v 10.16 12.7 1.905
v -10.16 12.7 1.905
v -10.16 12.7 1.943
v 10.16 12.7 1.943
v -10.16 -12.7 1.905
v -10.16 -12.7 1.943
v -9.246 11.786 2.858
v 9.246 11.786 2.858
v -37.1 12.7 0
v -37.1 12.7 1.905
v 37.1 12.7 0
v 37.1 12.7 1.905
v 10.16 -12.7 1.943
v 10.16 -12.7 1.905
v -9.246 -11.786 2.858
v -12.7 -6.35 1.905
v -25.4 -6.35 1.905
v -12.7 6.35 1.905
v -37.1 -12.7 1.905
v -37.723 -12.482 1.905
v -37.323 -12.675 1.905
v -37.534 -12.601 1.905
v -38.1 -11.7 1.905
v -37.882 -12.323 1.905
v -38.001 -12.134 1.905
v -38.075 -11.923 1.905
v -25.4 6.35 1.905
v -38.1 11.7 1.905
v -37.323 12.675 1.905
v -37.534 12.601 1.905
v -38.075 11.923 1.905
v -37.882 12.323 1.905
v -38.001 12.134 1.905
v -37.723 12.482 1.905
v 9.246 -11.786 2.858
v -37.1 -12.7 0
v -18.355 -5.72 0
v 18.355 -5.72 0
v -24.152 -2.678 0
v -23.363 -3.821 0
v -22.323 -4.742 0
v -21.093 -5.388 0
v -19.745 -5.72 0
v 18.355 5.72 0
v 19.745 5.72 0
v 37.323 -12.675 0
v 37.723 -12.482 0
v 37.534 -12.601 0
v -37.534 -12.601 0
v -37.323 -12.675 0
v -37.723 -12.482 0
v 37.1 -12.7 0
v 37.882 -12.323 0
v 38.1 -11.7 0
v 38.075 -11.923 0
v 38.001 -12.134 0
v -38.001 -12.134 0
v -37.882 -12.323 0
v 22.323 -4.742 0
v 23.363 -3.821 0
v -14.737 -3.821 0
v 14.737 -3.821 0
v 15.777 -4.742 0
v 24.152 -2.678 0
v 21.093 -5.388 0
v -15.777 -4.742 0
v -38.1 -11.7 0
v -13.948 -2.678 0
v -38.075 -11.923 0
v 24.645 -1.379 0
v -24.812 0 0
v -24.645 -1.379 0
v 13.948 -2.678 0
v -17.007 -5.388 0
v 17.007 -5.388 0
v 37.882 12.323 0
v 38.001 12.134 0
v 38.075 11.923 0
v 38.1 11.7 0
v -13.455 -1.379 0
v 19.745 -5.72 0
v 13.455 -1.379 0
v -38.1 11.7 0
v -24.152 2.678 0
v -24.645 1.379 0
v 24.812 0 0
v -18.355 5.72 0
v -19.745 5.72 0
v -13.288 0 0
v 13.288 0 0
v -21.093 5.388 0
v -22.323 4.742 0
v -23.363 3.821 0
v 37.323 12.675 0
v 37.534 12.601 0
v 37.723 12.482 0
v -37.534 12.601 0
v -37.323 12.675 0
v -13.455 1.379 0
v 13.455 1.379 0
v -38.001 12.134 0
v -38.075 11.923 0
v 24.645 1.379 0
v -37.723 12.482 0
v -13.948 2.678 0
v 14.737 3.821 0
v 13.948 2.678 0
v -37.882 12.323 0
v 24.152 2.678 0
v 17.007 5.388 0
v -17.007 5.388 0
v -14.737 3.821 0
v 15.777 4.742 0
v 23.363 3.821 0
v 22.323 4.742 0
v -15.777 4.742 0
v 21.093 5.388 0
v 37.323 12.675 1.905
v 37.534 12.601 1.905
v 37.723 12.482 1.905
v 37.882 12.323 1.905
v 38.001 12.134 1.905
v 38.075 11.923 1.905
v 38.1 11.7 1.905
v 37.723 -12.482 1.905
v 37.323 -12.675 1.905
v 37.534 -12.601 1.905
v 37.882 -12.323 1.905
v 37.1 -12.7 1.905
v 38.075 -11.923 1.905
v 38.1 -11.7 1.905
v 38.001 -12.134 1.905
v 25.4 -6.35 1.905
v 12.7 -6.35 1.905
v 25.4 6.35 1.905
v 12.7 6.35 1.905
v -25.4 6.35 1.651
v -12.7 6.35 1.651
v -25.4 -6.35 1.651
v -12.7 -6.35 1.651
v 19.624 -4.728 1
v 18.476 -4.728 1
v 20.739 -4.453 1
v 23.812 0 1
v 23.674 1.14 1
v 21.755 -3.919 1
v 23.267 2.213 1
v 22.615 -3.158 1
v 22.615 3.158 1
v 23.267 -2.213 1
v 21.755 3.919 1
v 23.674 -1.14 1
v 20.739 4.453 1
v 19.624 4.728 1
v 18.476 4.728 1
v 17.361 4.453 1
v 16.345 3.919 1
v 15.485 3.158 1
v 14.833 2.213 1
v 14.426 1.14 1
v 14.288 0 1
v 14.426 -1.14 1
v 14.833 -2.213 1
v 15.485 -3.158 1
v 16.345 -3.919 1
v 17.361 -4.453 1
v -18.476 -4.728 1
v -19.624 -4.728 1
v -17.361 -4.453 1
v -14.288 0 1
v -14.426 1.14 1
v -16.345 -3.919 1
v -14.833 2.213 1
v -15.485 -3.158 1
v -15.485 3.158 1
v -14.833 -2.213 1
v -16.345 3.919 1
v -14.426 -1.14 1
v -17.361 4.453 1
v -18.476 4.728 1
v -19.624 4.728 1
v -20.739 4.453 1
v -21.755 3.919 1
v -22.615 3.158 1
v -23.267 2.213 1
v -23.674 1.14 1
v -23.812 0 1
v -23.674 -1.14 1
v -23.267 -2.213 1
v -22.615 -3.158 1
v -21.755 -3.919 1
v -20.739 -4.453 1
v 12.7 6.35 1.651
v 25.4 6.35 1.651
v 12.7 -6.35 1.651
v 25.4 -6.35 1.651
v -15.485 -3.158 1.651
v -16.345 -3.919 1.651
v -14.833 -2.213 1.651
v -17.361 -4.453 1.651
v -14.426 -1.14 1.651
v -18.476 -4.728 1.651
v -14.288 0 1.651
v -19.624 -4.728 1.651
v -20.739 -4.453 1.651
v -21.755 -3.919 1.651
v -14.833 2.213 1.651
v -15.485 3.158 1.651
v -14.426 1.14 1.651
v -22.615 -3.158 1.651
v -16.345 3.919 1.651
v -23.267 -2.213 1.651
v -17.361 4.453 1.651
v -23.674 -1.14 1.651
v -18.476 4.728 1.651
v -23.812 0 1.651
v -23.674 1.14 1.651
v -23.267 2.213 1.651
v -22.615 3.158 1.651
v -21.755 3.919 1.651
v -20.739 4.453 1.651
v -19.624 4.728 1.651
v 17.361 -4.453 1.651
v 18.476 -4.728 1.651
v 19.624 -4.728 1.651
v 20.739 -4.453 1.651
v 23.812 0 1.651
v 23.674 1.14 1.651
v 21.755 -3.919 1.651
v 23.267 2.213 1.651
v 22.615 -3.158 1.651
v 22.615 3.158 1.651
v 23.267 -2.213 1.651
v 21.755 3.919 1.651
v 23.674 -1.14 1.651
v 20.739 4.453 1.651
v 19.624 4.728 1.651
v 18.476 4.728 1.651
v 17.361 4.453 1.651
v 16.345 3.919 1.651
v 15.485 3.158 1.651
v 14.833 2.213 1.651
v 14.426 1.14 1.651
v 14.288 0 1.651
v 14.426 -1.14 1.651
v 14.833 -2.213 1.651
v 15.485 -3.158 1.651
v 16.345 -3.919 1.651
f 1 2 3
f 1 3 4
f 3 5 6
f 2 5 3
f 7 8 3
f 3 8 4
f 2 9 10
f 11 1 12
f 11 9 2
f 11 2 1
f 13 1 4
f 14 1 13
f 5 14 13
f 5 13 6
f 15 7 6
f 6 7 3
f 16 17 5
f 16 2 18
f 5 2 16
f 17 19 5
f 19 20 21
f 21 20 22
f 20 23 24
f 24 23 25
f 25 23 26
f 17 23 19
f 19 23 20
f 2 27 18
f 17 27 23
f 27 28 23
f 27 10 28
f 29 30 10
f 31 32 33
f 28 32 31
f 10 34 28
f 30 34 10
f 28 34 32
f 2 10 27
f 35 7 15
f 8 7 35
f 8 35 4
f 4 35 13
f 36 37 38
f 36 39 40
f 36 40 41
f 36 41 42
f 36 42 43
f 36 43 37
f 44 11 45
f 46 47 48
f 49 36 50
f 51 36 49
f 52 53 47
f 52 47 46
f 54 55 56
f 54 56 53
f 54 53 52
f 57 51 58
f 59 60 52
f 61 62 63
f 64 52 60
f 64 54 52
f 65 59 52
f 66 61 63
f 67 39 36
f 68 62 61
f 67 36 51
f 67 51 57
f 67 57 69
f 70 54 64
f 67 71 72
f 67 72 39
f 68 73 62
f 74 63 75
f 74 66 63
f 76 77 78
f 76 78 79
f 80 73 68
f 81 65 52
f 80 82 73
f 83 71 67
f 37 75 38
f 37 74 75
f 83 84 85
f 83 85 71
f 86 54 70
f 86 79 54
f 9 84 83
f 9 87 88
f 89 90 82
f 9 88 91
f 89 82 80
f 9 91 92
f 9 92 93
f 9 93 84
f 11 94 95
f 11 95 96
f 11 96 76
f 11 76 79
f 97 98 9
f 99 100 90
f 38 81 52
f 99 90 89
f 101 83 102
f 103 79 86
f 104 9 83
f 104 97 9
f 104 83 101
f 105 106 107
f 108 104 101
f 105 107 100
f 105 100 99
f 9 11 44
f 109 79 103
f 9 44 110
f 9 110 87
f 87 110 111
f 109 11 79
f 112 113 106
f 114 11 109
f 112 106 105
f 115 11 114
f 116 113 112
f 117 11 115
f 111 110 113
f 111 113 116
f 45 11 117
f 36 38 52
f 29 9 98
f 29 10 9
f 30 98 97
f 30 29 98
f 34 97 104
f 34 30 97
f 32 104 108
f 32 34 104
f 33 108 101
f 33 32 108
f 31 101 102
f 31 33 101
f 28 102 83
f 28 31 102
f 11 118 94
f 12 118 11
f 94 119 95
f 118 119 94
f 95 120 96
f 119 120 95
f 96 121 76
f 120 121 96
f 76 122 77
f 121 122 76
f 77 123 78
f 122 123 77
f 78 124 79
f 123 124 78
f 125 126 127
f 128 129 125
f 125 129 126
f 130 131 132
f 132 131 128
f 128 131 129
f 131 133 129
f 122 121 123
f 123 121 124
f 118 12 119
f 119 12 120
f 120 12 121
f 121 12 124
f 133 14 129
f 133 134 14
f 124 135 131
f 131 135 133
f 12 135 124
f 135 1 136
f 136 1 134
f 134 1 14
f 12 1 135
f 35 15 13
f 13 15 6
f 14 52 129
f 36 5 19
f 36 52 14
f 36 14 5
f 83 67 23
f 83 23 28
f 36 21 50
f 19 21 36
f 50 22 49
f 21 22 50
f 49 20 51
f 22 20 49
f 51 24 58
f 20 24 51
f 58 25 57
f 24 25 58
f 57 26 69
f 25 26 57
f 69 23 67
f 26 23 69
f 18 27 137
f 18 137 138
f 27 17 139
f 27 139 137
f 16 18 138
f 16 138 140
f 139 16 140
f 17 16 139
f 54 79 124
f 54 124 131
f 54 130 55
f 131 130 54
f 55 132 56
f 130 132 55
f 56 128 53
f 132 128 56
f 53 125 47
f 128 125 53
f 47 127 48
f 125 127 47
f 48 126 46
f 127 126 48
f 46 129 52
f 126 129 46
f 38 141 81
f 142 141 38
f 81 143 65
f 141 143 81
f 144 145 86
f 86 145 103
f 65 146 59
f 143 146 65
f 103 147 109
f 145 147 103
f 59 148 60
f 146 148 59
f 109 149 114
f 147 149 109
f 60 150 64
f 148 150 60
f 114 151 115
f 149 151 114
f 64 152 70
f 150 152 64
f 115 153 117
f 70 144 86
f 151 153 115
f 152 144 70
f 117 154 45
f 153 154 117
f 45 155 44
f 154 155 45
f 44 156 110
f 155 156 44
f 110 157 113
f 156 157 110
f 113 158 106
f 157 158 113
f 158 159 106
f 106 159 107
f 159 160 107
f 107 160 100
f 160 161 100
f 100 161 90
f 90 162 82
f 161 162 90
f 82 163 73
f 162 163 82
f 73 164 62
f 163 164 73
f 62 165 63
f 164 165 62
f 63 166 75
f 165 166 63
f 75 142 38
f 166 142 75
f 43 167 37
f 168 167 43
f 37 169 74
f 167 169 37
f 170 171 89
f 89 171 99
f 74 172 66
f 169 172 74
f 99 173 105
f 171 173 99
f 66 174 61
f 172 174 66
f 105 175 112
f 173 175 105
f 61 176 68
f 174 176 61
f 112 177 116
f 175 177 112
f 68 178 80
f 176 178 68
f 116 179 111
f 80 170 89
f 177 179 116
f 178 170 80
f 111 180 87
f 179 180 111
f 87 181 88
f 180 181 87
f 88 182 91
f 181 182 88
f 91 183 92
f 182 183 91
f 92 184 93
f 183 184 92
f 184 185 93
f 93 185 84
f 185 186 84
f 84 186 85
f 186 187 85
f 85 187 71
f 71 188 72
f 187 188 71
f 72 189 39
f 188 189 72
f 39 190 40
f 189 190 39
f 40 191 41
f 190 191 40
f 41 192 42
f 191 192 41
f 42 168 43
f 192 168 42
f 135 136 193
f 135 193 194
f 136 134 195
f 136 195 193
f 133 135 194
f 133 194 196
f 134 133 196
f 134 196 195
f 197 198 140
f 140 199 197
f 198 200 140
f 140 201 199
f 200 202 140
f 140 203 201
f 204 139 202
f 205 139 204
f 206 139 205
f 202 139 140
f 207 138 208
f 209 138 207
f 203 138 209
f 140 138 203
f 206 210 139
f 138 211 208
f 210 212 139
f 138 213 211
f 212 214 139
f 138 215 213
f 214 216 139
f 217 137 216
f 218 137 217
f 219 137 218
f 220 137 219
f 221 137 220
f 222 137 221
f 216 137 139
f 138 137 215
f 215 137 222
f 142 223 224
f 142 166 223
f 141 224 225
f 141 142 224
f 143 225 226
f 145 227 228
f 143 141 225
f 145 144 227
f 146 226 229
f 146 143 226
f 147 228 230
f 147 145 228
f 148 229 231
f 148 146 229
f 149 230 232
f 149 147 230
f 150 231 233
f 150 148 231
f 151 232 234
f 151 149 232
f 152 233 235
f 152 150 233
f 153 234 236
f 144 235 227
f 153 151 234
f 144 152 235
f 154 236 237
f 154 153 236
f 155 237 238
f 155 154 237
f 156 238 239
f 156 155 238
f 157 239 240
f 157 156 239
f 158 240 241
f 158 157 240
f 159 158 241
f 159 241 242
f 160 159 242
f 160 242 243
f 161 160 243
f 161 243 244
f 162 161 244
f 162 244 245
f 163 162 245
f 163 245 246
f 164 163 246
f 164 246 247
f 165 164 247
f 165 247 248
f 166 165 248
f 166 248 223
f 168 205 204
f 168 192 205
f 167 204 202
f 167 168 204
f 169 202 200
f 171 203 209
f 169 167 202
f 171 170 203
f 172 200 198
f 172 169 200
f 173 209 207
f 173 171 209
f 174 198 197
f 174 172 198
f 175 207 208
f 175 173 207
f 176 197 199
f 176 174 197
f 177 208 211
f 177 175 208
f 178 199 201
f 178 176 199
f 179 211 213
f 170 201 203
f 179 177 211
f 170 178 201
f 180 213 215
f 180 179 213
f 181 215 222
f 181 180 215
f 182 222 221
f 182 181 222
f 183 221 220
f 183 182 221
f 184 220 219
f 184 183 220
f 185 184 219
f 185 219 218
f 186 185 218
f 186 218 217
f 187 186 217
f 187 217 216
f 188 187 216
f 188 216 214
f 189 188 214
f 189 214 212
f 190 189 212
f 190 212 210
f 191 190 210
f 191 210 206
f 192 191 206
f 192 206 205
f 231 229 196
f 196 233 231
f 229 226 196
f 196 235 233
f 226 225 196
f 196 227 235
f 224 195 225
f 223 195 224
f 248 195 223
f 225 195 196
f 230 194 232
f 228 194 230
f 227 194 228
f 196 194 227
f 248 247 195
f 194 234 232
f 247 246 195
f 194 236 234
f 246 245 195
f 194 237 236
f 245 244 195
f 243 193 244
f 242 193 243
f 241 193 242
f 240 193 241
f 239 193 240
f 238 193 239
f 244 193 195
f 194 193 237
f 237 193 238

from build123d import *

# Parameters (mm, degrees)
SKETCH_W        = 76.2
SKETCH_H        = 25.4
SKETCH_R        = 4.7625
PAD_DEPTH       = 1.905
SKETCH001_W     = 12.7
SKETCH001_H     = 12.7
POCKET_DEPTH    = 0.254
CHAMFER_SIZE    = 1
FILLET_R        = 1
SKETCH002_W     = 20.32
SKETCH002_H     = 25.4
PAD001_DEPTH    = 0.9525
CHAMFER001_SIZE = 0.9144


with BuildPart() as part:
    # Sketch → Pad (new body)
    with BuildSketch(Plane.XY):
        Rectangle(SKETCH_W, SKETCH_H)
        with Locations((-19.05, 0)):
            Circle(SKETCH_R, mode=Mode.SUBTRACT)
        with Locations((19.05, 0)):
            Circle(SKETCH_R, mode=Mode.SUBTRACT)
    extrude(amount=PAD_DEPTH)

    # Sketch001 → Pocket (cut)
    with BuildSketch(Plane.XY.offset(1.905)):
        with Locations((-19.05, 0)):
            Rectangle(SKETCH001_W, SKETCH001_H)
        with Locations((19.05, 0)):
            Rectangle(SKETCH001_W, SKETCH001_H)
    extrude(amount=-POCKET_DEPTH, mode=Mode.SUBTRACT)

    # Chamfer
    chamfer_edges = [part.edges().sort_by_distance(p)[0] for p in [
        (14.2875, 0, 0),
        (-23.8125, 0, 0),
    ]]
    chamfer(chamfer_edges, length=CHAMFER_SIZE)

    # Fillet
    fillet_edges = [part.edges().sort_by_distance(p)[0] for p in [
        (38.1, 12.7, 0.9525),
        (38.1, -12.7, 0.9525),
        (-38.1, -12.7, 0.9525),
        (-38.1, 12.7, 0.9525),
    ]]
    fillet(fillet_edges, radius=FILLET_R)

    # Sketch002 (on Face5 of Pocket) → Pad001 (join)
    with BuildSketch(Plane.XY.offset(1.905)):
        Rectangle(SKETCH002_W, SKETCH002_H)
    extrude(amount=PAD001_DEPTH)

    # Chamfer001
    chamfer001_edges = [part.edges().sort_by_distance(p)[0] for p in [
        (0, -12.7, 2.8575),
        (-10.16, 0, 2.8575),
        (0, 12.7, 2.8575),
        (10.16, 0, 2.8575),
    ]]
    chamfer(chamfer001_edges, length=CHAMFER001_SIZE)


solid = part.part
